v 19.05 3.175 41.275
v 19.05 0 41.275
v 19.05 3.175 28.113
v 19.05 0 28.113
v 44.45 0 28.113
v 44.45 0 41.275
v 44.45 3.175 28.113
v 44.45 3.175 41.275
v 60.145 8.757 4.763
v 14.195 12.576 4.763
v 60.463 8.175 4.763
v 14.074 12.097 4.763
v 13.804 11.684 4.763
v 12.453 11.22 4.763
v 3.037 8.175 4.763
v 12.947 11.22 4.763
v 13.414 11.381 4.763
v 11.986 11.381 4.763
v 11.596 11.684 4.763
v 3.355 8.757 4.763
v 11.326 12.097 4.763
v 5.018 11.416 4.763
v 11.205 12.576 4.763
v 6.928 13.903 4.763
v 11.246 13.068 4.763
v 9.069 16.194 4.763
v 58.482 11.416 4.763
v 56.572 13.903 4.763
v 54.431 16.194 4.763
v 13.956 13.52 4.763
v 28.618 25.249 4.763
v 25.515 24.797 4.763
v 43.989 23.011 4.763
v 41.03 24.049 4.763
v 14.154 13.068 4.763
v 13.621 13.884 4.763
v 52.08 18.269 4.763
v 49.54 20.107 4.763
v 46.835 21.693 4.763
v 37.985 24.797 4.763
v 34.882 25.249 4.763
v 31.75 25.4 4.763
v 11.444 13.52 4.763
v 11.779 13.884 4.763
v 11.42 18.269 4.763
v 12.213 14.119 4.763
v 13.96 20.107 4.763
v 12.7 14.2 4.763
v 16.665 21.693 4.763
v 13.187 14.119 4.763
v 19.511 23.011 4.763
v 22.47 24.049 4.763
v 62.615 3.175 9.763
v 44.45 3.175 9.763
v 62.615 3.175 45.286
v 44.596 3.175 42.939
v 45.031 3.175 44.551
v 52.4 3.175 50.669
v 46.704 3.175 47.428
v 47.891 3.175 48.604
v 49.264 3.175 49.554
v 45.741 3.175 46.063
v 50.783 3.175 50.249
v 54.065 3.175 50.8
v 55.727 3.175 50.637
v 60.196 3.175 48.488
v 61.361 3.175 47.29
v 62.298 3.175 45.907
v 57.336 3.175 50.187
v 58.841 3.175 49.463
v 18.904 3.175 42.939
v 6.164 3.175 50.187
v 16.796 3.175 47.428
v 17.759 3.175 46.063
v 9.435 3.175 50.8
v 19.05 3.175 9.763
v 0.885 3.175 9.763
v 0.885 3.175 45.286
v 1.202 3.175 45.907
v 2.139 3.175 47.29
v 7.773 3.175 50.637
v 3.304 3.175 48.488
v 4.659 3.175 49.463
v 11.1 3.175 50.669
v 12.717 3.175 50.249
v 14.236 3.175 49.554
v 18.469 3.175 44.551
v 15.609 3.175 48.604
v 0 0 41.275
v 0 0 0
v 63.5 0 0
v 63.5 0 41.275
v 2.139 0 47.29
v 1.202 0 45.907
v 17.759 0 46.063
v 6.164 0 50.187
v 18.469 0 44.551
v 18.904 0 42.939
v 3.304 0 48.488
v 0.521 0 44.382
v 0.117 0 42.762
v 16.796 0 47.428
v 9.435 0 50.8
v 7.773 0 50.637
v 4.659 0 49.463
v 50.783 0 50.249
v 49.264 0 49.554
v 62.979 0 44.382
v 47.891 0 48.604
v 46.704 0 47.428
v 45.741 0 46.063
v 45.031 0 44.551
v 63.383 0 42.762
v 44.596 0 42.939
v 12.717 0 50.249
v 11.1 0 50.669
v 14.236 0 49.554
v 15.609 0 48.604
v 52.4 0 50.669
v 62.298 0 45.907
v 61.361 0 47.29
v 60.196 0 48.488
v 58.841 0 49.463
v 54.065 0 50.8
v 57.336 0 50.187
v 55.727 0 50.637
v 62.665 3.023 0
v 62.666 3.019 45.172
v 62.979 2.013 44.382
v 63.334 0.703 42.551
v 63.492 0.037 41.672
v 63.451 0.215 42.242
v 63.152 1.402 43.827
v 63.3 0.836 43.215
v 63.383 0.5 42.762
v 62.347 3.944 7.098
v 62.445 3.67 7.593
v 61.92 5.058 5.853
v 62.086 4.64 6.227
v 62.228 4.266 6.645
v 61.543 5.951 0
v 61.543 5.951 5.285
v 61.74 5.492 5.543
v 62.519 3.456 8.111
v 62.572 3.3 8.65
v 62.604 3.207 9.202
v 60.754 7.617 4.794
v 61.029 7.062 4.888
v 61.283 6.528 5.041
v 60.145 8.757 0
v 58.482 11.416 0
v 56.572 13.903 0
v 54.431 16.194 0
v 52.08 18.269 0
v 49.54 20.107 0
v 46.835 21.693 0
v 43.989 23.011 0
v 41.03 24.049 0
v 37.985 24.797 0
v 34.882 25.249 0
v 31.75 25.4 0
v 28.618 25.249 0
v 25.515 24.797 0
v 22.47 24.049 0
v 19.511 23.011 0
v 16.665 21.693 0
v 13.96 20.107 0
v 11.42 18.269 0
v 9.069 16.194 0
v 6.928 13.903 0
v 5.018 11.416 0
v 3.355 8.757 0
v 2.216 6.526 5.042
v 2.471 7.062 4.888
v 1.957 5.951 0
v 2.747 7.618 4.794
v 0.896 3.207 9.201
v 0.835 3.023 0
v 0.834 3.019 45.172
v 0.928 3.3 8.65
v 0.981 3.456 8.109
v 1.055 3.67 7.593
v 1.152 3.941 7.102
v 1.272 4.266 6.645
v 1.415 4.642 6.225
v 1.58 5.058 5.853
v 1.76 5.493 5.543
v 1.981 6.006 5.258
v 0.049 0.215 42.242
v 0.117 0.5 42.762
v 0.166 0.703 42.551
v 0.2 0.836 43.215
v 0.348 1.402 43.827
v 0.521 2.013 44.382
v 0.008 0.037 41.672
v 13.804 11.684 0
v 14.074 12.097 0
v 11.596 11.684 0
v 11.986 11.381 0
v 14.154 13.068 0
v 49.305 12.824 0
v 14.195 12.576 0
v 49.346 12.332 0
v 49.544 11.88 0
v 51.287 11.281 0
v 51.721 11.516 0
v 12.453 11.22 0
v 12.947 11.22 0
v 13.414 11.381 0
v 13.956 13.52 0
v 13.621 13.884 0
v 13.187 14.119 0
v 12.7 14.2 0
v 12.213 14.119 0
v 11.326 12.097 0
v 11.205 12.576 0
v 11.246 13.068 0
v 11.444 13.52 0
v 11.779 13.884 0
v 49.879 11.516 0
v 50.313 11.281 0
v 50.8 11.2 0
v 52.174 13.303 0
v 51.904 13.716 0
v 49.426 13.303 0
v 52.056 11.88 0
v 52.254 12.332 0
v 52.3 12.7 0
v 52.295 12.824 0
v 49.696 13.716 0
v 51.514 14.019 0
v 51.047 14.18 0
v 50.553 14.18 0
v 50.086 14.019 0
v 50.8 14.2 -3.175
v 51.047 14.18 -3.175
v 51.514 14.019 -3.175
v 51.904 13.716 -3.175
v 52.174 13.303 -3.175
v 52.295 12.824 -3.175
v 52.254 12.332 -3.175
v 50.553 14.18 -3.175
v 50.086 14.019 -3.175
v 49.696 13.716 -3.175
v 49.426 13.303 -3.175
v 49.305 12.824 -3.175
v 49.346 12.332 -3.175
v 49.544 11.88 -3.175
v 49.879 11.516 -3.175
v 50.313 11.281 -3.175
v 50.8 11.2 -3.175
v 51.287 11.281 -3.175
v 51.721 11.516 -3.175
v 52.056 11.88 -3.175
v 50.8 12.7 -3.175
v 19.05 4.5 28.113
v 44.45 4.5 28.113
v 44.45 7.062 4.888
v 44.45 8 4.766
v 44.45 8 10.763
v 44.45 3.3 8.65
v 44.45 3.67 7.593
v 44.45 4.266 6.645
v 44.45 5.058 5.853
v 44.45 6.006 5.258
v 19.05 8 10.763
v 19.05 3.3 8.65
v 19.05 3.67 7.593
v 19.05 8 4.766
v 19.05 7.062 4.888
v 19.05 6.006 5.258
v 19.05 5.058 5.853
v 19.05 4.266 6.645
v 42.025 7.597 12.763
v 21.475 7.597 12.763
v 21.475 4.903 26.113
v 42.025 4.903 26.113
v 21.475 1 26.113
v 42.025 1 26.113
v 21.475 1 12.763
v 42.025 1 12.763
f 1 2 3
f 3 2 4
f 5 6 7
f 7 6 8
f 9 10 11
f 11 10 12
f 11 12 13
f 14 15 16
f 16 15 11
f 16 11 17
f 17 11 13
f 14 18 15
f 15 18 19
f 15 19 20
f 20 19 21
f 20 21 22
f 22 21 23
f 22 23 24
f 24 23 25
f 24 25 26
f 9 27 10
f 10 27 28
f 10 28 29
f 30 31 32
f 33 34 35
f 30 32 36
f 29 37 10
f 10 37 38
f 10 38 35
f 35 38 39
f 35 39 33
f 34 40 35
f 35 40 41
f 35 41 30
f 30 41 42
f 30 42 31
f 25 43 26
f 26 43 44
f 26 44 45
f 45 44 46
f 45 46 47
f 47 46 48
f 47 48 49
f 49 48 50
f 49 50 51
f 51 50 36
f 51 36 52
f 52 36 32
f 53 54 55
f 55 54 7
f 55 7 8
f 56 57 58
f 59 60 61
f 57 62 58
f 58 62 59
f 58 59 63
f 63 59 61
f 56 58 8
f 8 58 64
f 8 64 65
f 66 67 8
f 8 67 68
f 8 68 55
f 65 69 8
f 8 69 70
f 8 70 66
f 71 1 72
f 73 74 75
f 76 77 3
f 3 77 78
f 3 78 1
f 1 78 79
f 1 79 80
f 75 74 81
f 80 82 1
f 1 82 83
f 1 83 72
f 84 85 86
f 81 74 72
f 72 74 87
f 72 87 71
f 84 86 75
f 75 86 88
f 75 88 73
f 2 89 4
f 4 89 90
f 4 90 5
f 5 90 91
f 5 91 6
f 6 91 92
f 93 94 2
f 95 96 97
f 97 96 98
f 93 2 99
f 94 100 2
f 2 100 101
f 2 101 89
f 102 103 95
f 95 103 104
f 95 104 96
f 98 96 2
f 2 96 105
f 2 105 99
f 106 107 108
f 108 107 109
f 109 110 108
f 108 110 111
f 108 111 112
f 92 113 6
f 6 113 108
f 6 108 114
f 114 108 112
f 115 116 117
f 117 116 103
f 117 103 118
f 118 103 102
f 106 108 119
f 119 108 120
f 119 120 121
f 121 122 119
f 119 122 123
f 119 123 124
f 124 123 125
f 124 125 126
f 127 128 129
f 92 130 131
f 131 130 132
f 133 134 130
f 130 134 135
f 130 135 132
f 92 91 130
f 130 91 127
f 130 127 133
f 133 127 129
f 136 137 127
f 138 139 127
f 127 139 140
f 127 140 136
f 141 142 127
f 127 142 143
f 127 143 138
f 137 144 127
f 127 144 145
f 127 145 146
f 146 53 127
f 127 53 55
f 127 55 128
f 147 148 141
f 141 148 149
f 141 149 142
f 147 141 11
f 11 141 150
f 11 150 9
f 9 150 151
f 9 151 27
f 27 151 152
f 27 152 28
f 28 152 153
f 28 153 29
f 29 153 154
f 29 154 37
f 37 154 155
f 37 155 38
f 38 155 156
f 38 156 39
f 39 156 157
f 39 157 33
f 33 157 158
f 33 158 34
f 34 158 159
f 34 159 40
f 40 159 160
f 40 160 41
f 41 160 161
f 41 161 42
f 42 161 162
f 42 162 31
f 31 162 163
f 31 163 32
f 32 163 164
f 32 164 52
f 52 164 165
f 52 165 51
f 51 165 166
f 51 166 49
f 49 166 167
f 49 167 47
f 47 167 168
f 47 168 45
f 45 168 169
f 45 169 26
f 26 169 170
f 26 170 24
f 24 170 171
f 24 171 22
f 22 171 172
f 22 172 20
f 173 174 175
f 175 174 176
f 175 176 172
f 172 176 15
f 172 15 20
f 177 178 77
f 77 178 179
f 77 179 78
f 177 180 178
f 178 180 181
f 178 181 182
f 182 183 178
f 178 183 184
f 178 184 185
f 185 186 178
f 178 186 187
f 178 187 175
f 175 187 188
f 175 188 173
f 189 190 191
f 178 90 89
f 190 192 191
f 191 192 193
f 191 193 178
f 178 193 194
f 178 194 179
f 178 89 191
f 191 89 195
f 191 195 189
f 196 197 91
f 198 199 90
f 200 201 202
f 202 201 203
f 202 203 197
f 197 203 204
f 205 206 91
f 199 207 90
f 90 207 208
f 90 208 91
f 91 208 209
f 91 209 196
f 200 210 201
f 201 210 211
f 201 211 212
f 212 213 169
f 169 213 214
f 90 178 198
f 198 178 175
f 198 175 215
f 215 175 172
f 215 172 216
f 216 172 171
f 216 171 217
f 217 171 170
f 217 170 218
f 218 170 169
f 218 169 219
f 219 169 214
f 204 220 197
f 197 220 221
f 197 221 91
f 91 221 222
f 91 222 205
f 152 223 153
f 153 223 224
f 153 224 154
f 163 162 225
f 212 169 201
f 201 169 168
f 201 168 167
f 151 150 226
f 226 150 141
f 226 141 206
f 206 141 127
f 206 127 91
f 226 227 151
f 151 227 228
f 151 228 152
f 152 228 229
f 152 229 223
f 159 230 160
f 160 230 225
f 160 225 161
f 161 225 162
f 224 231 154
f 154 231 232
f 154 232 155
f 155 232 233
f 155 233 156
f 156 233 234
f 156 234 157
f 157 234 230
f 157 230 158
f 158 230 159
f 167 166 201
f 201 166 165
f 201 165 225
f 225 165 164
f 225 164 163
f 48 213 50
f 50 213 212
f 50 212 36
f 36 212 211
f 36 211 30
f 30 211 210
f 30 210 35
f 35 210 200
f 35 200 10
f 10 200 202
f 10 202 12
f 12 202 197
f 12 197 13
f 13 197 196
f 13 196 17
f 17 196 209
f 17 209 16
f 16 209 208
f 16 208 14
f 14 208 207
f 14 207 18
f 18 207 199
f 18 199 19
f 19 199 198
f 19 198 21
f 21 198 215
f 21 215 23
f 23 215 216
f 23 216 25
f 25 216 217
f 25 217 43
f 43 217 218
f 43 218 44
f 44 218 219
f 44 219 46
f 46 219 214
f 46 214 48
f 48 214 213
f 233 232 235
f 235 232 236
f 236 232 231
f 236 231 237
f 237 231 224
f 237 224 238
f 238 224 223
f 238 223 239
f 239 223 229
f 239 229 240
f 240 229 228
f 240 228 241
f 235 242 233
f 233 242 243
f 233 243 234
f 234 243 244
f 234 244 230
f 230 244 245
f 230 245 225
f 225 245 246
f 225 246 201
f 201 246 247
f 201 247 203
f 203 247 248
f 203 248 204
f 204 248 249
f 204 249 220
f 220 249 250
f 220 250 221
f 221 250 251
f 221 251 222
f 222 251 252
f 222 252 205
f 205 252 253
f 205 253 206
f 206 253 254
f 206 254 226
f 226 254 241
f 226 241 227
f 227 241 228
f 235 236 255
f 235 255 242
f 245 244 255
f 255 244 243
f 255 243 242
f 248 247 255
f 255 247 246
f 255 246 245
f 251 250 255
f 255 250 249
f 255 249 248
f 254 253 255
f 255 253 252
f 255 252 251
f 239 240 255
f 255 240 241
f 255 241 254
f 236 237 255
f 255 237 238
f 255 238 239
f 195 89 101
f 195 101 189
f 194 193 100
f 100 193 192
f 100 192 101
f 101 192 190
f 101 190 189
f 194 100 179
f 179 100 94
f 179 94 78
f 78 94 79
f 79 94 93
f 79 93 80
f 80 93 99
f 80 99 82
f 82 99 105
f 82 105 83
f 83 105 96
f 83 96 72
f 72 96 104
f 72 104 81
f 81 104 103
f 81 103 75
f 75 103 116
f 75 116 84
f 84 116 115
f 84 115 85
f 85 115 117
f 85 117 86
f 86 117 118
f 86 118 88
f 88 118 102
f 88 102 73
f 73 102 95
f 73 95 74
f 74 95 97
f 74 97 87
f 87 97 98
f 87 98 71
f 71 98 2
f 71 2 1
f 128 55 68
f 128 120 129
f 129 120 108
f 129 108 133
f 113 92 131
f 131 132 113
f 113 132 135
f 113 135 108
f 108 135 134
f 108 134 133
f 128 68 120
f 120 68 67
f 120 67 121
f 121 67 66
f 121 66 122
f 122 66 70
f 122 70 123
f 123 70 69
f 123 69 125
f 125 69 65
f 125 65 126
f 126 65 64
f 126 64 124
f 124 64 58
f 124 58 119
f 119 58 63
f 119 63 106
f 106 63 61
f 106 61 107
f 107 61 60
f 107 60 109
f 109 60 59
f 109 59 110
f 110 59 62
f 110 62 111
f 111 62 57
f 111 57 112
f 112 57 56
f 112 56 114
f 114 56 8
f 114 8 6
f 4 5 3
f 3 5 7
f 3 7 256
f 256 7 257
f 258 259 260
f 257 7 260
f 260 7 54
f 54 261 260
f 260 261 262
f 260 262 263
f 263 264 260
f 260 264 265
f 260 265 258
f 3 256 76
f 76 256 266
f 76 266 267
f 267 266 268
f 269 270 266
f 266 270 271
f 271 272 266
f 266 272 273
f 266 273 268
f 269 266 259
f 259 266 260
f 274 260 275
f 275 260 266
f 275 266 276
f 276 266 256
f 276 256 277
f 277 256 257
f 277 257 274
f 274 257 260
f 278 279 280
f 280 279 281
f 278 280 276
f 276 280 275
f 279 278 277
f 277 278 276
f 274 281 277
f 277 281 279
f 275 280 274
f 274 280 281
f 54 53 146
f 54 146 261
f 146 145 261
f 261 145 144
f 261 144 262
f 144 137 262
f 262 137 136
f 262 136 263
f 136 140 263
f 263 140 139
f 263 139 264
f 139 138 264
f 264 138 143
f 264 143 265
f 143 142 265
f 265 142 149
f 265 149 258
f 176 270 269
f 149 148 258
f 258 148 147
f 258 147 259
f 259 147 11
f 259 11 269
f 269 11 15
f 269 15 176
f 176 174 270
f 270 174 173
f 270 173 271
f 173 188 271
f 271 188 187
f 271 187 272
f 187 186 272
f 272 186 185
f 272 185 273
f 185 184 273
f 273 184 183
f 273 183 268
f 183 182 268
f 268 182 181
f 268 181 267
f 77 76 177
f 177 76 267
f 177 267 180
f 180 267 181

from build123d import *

# Parameters (mm, degrees)
BOSS_EXTRUDE1_DEPTH = 63.5
SKETCH3_R           = 1.5
CUT_EXTRUDE1_DEPTH  = 86.194189943
SKETCH3_3_R         = 1.5
BOSS_EXTRUDE2_DEPTH = 3.175
CUT_EXTRUDE2_DEPTH  = 86.194189943
CUT_EXTRUDE3_DEPTH  = 3.175
SKETCH6_W           = 25.4
SKETCH6_H           = 17.35
BOSS_EXTRUDE3_DEPTH = 1
BOSS_EXTRUDE4_START = -1
SKETCH6_3_W         = 25.4
SKETCH6_3_H         = 23.35
SKETCH6_3_W_2       = 20.55
SKETCH6_3_H_2       = 13.35
BOSS_EXTRUDE4_DEPTH = 7
CUT_EXTRUDE4_DEPTH  = 73.122136159
SKETCH6_4_W         = 25.4
SKETCH6_4_H         = 6
BOSS_EXTRUDE5_DEPTH = 3.175
FILLET2_R           = 5


with BuildPart() as part:
    # Sketch2 → Boss-Extrude1 (new body)
    with BuildSketch(Plane(origin=(0, 0, 0), x_dir=(0, 0, -1), z_dir=(1, 0, 0))):
        Polygon((-50.8, 0), (0, 0), (0, 25.4), (-4.7625, 25.4), (-4.7625, 3.175), (-50.8, 3.175), align=None)
    extrude(amount=BOSS_EXTRUDE1_DEPTH)

    # Sketch3 → Cut-Extrude1 (cut, through all)
    with BuildSketch(Plane(origin=(0, 0, 0), x_dir=(-1, 0, 0), z_dir=(0, 0, -1))):
        with Locations(Location((-12.7, 12.7, 0), (0, 0, 90))):
            Circle(SKETCH3_R)
    extrude(amount=-CUT_EXTRUDE1_DEPTH, mode=Mode.SUBTRACT)

    # Sketch3<3> → Boss-Extrude2 (add)
    with BuildSketch(Plane(origin=(0, 0, 0), x_dir=(-1, 0, 0), z_dir=(0, 0, -1))):
        with Locations(Location((-50.8, 12.7, 0), (0, 0, 180))):
            Circle(SKETCH3_3_R)
    extrude(amount=BOSS_EXTRUDE2_DEPTH)

    # Sketch4 → Cut-Extrude2 (cut, through all)
    with BuildSketch(Plane(origin=(0, 0, 0), x_dir=(-1, 0, 0), z_dir=(0, 0, -1))):
        with BuildLine():
            Line((-63.5, 25.4), (-63.5, 0))
            ThreePointArc((-63.5, 0), (-52.079919454, 18.268649317), (-31.75, 25.4))
            Line((-31.75, 25.4), (-63.5, 25.4))
        make_face()
        with BuildLine():
            ThreePointArc((-31.75, 25.4), (-11.420080546, 18.268649317), (0, 0))
            Line((0, 0), (0, 25.4))
            Line((0, 25.4), (-31.75, 25.4))
        make_face()
    extrude(amount=-CUT_EXTRUDE2_DEPTH, mode=Mode.SUBTRACT)

    # Sketch5 → Cut-Extrude3 (cut)
    with BuildSketch(Plane(origin=(0, 3.175, 0), x_dir=(1, 0, 0), z_dir=(0, 1, 0))):
        with BuildLine():
            Line((44.45, -4.7625), (19.05, -4.7625))
            Line((19.05, -4.7625), (19.05, -41.275))
            ThreePointArc((19.05, -41.275), (16.260192091, -48.010192091), (9.525, -50.8))
            Line((9.525, -50.8), (53.975, -50.8))
            ThreePointArc((53.975, -50.8), (47.239807909, -48.010192091), (44.45, -41.275))
            Line((44.45, -41.275), (44.45, -4.7625))
        make_face()
        with BuildLine():
            ThreePointArc((9.525, -50.8), (4.400279527, -49.303876949), (0.885472424, -45.285509726))
            Line((0.885472424, -45.285509726), (0.885472424, -50.8))
            Line((0.885472424, -50.8), (9.525, -50.8))
        make_face()
        with BuildLine():
            ThreePointArc((0.885472424, -45.285509726), (0.224002065, -43.328548738), (0, -41.275))
            Line((0, -41.275), (0, -50.8))
            Line((0, -50.8), (0.885472424, -50.8))
            Line((0.885472424, -50.8), (0.885472424, -45.285509726))
        make_face()
        with BuildLine():
            ThreePointArc((62.614527576, -45.285509726), (59.099720473, -49.303876949), (53.975, -50.8))
            Line((53.975, -50.8), (62.614527576, -50.8))
            Line((62.614527576, -50.8), (62.614527576, -45.285509726))
        make_face()
        with BuildLine():
            ThreePointArc((63.5, -41.275), (63.275997935, -43.328548738), (62.614527576, -45.285509726))
            Line((62.614527576, -45.285509726), (62.614527576, -50.8))
            Line((62.614527576, -50.8), (63.5, -50.8))
            Line((63.5, -50.8), (63.5, -41.275))
        make_face()
    extrude(amount=-CUT_EXTRUDE3_DEPTH, mode=Mode.SUBTRACT)

    # Sketch6 → Boss-Extrude3 (add)
    with BuildSketch(Plane.XZ):
        with Locations((31.75, 19.4375)):
            Rectangle(SKETCH6_W, SKETCH6_H)
    extrude(amount=-BOSS_EXTRUDE3_DEPTH)

    # Sketch6<3> → Boss-Extrude4 (add)
    with BuildSketch(Plane.XZ.offset(BOSS_EXTRUDE4_START)):
        with Locations((31.75, 16.4375)):
            Rectangle(SKETCH6_3_W, SKETCH6_3_H)
        with Locations((31.75, 19.4375)):
            Rectangle(SKETCH6_3_W_2, SKETCH6_3_H_2, mode=Mode.SUBTRACT)
    extrude(amount=-BOSS_EXTRUDE4_DEPTH)

    # Sketch7 → Cut-Extrude4 (cut, through all)
    with BuildSketch(Plane.ZY.offset(-19.05)):
        Polygon((10.7625, 8), (28.1125, 8), (28.1125, 4.5), align=None)
    extrude(amount=-CUT_EXTRUDE4_DEPTH, mode=Mode.SUBTRACT)

    # Sketch6<4> → Boss-Extrude5 (add)
    with BuildSketch(Plane.XZ):
        with Locations((31.75, 7.7625)):
            Rectangle(SKETCH6_4_W, SKETCH6_4_H)
    extrude(amount=-BOSS_EXTRUDE5_DEPTH)

    # Fillet2
    fillet2_edges = [part.edges().sort_by_distance(p)[0] for p in [
        (9.967736212, 3.175, 4.7625),
    ]]
    fillet(fillet2_edges, radius=FILLET2_R)


solid = part.part
